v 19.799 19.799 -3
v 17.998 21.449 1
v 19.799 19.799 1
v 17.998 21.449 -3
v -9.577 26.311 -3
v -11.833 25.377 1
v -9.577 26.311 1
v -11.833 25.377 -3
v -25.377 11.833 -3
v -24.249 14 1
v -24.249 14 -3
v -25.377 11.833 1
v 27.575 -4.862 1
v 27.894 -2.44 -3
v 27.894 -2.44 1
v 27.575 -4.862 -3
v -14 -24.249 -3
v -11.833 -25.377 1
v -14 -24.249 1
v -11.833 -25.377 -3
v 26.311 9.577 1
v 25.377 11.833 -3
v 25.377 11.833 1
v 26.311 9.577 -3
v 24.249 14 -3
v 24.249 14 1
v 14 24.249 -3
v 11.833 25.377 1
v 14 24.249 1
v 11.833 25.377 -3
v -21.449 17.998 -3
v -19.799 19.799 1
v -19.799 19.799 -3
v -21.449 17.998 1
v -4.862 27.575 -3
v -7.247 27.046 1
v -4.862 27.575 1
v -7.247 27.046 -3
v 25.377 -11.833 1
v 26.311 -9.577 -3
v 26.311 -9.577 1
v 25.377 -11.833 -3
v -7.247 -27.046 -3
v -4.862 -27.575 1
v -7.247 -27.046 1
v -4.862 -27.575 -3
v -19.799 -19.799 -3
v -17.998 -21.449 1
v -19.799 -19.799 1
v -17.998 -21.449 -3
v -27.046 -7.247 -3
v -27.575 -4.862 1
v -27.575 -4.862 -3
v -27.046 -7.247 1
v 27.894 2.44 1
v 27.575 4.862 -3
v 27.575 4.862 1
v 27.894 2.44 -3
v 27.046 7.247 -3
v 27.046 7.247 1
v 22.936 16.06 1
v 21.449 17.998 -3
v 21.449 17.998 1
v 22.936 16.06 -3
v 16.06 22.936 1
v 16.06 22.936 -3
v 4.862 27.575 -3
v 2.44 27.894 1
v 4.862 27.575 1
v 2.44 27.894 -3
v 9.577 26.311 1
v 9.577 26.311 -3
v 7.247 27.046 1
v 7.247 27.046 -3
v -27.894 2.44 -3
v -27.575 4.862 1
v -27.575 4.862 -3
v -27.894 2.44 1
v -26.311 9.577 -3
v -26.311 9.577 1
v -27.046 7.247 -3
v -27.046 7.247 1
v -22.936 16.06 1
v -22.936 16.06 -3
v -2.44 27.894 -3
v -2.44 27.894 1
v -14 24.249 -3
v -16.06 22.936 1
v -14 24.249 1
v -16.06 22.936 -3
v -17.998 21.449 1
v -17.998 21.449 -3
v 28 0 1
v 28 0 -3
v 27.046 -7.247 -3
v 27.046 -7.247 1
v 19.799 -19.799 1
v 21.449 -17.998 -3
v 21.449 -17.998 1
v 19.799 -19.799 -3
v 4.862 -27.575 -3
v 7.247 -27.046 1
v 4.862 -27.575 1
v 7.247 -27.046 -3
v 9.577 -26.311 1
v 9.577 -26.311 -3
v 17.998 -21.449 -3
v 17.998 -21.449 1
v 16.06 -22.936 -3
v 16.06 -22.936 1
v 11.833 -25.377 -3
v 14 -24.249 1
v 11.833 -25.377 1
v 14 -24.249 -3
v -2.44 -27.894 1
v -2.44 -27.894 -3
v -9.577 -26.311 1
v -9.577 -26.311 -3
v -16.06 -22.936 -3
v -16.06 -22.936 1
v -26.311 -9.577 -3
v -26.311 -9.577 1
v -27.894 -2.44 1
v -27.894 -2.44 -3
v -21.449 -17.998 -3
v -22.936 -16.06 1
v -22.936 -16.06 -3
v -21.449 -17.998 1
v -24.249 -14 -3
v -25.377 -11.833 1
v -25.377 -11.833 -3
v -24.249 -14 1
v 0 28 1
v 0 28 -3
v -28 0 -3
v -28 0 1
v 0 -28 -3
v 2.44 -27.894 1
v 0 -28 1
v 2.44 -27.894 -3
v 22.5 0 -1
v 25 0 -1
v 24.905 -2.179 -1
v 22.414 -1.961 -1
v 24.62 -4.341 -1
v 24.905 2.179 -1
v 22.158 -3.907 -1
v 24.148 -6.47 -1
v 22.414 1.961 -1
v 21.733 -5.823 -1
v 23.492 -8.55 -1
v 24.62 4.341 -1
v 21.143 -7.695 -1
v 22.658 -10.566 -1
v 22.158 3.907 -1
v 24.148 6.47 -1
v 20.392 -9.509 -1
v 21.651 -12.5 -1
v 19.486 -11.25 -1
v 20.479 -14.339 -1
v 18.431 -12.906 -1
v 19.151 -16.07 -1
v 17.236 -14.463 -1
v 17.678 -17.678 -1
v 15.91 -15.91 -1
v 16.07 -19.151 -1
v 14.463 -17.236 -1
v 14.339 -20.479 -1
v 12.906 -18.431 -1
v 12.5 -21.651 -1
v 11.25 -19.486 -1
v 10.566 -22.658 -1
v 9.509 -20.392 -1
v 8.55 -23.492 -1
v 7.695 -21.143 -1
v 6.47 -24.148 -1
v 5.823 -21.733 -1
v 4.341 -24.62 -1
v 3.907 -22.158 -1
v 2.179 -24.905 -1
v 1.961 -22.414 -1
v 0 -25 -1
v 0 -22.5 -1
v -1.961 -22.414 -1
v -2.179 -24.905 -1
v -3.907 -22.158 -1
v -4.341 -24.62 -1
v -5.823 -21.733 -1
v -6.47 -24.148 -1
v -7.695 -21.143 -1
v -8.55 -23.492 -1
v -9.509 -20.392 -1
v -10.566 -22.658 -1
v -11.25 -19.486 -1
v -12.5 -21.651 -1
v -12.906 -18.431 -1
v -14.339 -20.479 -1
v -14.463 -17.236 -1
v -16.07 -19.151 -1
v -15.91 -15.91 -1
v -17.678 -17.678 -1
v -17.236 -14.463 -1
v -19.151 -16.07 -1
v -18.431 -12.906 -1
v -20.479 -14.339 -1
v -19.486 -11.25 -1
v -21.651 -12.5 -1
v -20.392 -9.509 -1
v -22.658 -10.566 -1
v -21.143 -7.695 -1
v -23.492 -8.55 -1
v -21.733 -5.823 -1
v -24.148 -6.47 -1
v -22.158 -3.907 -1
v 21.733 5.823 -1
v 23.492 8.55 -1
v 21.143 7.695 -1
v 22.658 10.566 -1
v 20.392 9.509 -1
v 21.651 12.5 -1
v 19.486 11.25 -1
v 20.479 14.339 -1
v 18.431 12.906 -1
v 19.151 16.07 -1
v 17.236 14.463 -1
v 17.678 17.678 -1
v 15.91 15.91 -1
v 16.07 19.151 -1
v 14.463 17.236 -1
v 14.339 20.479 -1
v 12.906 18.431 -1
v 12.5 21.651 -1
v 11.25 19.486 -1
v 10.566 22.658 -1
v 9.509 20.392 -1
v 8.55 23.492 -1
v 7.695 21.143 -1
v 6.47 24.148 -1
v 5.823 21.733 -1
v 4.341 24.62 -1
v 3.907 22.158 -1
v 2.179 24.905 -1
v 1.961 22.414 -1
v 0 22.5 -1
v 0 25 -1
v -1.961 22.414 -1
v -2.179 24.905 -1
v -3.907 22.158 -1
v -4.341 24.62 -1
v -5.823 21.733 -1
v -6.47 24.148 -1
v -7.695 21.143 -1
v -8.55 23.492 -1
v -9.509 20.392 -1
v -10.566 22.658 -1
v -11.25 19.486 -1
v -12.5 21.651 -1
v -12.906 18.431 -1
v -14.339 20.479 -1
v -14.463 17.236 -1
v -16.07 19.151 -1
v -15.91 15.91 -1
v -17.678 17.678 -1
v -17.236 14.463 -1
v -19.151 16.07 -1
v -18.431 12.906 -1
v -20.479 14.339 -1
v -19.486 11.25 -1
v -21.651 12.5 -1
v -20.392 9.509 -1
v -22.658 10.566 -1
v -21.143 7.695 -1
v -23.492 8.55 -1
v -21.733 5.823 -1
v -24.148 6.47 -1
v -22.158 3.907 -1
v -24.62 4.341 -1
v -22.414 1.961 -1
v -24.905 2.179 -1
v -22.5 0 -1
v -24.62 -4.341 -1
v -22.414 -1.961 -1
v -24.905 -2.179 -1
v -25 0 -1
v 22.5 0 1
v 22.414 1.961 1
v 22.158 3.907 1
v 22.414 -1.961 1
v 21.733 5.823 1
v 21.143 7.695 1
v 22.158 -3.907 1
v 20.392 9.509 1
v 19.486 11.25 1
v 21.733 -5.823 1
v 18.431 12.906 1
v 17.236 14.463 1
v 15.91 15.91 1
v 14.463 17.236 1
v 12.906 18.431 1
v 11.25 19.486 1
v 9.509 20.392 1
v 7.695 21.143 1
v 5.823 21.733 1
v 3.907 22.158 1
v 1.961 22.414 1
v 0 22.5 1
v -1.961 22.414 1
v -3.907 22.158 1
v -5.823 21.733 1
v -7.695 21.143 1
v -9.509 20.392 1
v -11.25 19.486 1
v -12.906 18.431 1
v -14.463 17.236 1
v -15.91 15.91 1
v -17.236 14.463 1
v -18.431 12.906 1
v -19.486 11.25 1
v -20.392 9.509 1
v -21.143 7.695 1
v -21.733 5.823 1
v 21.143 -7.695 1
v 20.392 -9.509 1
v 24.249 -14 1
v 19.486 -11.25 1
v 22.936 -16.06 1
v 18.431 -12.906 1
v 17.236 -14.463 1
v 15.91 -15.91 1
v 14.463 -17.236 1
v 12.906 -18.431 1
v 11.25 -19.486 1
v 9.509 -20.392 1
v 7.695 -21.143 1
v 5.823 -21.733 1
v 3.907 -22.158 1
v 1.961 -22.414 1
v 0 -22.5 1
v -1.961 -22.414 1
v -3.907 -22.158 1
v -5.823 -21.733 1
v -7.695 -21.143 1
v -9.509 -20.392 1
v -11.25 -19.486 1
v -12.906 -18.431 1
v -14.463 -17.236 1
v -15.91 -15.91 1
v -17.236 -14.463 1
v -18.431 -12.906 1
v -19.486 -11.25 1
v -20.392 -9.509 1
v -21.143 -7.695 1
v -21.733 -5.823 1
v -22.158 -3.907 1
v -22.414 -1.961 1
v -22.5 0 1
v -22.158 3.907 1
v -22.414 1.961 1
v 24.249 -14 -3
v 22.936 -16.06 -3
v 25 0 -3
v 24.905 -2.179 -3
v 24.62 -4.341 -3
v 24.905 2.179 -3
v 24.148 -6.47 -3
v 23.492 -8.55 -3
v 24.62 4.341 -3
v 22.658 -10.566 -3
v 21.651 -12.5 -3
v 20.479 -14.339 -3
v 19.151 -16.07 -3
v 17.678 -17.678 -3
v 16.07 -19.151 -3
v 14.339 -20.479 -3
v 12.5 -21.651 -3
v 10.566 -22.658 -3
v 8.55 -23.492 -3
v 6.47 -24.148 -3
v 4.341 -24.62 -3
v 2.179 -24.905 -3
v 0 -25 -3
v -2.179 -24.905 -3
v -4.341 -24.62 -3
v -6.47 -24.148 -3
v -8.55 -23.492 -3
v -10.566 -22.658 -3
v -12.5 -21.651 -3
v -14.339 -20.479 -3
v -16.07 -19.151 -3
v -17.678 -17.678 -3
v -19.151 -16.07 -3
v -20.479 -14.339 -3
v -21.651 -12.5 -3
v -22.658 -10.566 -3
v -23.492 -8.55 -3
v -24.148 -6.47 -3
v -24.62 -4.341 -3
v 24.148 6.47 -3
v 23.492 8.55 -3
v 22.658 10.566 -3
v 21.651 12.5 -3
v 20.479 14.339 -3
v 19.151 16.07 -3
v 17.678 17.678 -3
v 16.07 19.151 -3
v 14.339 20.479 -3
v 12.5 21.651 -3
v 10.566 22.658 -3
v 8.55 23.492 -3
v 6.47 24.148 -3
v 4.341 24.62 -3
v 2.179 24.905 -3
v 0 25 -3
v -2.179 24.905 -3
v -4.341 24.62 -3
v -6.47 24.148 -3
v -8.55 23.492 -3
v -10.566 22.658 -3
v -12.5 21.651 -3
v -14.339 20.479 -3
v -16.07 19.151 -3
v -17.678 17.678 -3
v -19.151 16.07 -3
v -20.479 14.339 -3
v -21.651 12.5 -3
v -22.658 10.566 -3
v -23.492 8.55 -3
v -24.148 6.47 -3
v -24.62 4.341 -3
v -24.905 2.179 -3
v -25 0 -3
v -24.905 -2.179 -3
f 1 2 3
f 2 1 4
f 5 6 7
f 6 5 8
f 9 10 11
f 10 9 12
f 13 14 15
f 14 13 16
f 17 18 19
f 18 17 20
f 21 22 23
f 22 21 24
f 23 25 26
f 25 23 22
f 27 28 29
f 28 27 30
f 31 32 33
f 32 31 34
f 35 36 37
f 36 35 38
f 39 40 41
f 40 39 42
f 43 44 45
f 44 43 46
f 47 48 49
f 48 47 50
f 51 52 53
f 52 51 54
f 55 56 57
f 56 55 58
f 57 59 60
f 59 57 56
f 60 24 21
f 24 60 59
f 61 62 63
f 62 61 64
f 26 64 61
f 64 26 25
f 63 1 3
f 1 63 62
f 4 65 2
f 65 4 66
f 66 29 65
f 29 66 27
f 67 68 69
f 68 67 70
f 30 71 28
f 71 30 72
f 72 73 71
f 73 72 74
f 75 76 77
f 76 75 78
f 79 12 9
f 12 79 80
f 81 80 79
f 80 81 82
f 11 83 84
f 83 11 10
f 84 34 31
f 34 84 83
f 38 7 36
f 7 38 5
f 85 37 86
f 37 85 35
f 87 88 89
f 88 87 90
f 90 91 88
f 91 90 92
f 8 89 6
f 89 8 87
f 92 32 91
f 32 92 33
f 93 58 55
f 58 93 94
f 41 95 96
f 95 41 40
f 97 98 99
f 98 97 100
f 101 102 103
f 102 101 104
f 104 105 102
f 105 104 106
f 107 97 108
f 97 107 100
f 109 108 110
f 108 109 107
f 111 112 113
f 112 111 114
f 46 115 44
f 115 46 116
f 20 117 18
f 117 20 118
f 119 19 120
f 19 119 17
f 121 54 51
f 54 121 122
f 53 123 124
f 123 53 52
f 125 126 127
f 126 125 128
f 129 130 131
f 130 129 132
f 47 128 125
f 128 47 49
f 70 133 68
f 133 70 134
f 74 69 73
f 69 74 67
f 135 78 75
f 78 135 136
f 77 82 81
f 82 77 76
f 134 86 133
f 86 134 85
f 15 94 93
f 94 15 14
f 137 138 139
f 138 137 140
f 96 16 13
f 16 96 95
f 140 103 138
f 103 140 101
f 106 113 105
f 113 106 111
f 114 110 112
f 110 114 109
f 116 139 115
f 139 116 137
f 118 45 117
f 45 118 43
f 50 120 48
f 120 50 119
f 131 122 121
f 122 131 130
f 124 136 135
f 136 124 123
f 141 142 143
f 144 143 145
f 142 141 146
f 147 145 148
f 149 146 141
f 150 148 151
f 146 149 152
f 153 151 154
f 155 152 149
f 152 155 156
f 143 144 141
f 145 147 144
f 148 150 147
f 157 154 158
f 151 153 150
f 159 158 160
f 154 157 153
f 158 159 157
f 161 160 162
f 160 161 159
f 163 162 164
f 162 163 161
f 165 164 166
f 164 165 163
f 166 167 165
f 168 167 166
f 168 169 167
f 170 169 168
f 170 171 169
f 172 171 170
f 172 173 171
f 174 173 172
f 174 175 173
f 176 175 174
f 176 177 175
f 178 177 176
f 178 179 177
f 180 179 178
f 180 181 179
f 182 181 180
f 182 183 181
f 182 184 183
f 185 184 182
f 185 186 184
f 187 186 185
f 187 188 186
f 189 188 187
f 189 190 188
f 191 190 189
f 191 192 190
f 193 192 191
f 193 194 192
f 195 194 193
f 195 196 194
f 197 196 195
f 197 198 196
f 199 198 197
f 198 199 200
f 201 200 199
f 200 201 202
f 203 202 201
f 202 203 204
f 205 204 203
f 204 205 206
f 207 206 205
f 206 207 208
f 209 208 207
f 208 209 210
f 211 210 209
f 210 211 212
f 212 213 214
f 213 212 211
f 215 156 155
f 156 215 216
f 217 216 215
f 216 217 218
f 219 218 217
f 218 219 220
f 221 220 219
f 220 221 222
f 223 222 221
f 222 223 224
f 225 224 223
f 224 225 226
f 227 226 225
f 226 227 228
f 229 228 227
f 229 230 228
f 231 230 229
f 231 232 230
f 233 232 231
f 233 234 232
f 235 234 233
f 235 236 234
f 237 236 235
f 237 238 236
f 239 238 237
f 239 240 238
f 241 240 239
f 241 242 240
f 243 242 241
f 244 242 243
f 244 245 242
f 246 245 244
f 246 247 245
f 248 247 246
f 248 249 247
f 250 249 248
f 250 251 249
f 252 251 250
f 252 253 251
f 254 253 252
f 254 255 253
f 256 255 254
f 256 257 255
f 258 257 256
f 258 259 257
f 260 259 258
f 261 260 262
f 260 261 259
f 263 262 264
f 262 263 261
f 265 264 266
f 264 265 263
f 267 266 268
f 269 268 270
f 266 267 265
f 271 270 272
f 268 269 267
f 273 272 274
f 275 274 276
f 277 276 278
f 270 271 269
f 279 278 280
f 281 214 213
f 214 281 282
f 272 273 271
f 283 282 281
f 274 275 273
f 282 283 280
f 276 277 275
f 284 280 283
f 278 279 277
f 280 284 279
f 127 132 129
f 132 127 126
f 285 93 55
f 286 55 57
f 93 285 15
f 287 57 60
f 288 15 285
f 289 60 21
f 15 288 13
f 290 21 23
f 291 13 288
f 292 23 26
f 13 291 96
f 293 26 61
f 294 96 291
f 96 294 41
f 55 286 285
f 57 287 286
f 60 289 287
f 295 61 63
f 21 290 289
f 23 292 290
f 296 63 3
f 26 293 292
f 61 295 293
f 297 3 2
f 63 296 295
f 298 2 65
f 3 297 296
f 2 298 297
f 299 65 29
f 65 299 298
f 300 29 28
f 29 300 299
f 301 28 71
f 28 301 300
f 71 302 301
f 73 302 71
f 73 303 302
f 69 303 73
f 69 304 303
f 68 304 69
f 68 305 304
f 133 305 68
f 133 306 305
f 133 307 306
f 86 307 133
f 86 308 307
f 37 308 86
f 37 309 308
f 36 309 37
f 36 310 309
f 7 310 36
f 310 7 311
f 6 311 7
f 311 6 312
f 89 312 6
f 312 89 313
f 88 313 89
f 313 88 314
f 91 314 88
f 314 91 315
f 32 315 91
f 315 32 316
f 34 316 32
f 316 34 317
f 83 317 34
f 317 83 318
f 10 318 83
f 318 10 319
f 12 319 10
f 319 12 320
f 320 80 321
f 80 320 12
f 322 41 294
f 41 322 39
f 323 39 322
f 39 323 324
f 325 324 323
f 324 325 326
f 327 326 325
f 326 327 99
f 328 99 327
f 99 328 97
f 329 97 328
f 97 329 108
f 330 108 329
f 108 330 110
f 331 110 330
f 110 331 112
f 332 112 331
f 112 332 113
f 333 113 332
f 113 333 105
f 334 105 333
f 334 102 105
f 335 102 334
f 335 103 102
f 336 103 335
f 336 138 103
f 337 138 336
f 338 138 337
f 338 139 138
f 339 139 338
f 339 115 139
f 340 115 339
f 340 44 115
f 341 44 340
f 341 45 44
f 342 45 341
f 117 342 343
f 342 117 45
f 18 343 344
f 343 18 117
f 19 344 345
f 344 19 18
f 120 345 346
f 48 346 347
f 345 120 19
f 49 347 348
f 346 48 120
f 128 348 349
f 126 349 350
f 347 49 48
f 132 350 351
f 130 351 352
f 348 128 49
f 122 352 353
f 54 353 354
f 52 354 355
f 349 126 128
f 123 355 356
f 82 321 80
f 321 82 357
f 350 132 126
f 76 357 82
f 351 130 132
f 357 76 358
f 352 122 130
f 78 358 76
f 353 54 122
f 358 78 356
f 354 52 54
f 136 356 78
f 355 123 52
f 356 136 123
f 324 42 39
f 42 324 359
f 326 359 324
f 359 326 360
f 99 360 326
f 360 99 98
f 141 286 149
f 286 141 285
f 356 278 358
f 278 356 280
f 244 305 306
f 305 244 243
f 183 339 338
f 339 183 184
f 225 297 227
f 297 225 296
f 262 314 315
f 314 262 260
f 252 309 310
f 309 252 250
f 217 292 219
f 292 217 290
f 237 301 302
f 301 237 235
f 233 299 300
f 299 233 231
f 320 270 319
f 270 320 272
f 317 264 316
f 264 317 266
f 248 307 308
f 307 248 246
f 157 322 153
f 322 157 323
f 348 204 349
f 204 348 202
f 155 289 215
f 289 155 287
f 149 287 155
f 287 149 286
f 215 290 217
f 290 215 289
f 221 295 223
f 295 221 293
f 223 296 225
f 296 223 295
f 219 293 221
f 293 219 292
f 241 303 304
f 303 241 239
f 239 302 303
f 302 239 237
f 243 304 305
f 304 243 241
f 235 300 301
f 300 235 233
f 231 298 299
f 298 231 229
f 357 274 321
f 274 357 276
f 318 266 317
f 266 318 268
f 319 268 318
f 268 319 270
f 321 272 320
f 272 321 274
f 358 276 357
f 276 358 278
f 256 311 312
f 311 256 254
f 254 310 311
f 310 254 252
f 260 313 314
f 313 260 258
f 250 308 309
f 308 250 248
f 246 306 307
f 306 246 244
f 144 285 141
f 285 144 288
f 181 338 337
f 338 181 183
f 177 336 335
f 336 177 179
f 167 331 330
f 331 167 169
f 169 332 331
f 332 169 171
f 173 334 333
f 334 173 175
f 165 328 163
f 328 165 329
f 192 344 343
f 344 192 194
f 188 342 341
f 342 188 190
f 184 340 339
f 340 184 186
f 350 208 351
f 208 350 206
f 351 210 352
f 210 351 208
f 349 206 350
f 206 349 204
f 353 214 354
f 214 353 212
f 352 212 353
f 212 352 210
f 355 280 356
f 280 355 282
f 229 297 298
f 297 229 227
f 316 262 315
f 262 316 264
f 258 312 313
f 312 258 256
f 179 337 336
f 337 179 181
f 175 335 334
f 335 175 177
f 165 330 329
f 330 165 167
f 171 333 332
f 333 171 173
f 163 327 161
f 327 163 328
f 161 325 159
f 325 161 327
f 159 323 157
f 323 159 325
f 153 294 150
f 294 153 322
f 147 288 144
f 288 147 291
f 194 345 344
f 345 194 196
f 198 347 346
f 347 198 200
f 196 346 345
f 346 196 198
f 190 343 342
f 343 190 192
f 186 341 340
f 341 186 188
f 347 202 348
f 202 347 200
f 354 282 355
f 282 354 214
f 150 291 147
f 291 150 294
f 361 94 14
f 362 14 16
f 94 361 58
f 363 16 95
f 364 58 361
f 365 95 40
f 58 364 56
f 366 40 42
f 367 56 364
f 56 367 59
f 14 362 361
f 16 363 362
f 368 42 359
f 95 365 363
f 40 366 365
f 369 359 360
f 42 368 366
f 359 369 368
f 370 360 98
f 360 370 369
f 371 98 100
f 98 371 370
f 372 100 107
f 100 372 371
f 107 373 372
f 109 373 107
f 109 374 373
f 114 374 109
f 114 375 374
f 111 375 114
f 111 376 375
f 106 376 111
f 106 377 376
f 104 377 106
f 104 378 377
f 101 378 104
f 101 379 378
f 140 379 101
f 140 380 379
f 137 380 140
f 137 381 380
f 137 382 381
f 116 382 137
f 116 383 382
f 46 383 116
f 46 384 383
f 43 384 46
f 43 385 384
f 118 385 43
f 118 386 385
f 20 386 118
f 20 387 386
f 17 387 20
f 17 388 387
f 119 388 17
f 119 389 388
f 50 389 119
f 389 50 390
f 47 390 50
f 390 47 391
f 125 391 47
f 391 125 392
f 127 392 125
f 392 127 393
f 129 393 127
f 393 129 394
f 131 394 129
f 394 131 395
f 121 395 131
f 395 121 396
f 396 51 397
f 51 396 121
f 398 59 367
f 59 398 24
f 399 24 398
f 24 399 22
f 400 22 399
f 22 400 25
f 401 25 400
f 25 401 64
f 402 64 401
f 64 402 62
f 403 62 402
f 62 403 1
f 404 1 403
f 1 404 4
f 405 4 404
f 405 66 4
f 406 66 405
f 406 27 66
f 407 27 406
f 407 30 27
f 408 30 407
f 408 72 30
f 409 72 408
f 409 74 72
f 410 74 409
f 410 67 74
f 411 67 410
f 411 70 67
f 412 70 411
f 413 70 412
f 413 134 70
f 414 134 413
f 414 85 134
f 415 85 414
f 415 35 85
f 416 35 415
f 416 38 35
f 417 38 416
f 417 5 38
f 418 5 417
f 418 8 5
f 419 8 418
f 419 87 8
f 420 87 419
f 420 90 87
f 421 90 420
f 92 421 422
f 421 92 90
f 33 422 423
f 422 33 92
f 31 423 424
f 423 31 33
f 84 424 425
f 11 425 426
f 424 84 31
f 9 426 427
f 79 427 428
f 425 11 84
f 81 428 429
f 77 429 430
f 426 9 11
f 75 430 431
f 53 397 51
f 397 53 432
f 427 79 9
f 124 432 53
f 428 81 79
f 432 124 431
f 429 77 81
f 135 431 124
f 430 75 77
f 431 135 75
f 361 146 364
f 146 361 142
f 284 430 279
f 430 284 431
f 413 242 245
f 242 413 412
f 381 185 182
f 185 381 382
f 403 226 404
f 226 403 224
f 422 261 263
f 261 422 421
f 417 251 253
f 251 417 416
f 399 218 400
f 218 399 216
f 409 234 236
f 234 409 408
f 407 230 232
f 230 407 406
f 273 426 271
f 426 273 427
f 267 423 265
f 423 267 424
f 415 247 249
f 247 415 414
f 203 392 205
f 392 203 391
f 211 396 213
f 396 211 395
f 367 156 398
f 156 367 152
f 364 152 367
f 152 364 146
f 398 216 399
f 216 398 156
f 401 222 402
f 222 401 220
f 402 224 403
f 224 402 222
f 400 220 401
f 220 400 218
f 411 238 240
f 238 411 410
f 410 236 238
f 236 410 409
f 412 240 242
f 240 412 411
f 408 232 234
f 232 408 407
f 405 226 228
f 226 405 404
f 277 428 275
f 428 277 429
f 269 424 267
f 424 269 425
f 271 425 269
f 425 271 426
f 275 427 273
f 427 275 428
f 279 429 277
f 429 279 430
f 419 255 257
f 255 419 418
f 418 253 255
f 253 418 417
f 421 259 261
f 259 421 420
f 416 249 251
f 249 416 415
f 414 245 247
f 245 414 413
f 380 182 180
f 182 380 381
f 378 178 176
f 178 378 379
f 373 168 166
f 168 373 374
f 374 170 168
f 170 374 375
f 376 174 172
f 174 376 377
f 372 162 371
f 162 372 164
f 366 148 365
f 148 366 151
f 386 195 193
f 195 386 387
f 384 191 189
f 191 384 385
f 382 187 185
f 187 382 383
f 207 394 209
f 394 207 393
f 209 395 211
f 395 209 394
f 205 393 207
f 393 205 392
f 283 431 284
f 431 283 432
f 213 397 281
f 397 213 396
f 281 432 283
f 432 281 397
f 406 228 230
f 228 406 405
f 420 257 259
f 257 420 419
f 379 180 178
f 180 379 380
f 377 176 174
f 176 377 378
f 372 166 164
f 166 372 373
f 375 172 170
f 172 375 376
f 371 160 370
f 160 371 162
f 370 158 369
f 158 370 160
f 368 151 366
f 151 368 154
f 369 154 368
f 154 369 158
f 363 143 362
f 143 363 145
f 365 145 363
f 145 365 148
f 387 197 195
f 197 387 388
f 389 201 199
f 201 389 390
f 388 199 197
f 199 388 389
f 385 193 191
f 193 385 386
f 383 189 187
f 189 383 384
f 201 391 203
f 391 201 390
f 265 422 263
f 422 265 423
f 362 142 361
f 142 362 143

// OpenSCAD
// Global resolution
$fs = 0.1;  // Don't generate smaller facets than 0.1 mm
$fa = 5;    // Don't generate larger angles than 5 degrees

// Main geometry
union() {
    translate([0,0,-2]) front();
    baffle();
}

// Core geometric primitives
// These can be modified to create variations of the final object

module baffle() {
    difference() {
        speakerRadius();
        speakerInset();
    }
}

module front() {
    difference() {
        cylinder(h=2, r=28  , center=true);
        cylinder(h=2, r=50/2, center=true);
    }
    
}

module edge() {
    cube(55);
}

module speakerInset() {
    cylinder(h=2, r=45/2, center=true);
}

module speakerRadius() {
    cylinder(h=2, r=28, center=true);
}
